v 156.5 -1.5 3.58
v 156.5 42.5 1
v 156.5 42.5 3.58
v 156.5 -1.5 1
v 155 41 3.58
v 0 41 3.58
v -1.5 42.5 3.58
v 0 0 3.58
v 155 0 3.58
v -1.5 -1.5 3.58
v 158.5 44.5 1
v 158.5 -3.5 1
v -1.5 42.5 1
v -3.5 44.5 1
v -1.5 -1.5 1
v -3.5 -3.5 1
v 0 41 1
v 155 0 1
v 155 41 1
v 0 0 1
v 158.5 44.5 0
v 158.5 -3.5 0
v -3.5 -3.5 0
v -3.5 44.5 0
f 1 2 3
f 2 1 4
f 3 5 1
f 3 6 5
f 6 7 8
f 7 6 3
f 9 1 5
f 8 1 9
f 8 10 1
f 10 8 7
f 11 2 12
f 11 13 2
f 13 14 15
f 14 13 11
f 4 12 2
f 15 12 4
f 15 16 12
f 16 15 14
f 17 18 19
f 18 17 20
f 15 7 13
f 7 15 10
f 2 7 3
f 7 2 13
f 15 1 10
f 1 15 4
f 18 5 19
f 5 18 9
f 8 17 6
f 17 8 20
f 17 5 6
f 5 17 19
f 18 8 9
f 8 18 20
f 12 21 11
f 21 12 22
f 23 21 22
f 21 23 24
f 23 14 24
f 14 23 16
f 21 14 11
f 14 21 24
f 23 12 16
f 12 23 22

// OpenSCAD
// I/O shield for X

// based on blank_v01
translate([-3.5, -3.5, 0]) union() {
    
    // border
    translate([2, 2, 1]){
        difference() {
            cube([158, 44, 2.58]);
            translate([1.5, 1.5, -0.01]) cube([155, 41, 2.60]);
        }
    }
    
    // backplate
    difference() {
        cube([162, 48, 1]);
        
        translate([3.5, 3.5, -1]) {
            //Place your IO recesses here.
            //translate([5, 3, 0]) cube([15, 7, 3]);
        }
    } 
}
